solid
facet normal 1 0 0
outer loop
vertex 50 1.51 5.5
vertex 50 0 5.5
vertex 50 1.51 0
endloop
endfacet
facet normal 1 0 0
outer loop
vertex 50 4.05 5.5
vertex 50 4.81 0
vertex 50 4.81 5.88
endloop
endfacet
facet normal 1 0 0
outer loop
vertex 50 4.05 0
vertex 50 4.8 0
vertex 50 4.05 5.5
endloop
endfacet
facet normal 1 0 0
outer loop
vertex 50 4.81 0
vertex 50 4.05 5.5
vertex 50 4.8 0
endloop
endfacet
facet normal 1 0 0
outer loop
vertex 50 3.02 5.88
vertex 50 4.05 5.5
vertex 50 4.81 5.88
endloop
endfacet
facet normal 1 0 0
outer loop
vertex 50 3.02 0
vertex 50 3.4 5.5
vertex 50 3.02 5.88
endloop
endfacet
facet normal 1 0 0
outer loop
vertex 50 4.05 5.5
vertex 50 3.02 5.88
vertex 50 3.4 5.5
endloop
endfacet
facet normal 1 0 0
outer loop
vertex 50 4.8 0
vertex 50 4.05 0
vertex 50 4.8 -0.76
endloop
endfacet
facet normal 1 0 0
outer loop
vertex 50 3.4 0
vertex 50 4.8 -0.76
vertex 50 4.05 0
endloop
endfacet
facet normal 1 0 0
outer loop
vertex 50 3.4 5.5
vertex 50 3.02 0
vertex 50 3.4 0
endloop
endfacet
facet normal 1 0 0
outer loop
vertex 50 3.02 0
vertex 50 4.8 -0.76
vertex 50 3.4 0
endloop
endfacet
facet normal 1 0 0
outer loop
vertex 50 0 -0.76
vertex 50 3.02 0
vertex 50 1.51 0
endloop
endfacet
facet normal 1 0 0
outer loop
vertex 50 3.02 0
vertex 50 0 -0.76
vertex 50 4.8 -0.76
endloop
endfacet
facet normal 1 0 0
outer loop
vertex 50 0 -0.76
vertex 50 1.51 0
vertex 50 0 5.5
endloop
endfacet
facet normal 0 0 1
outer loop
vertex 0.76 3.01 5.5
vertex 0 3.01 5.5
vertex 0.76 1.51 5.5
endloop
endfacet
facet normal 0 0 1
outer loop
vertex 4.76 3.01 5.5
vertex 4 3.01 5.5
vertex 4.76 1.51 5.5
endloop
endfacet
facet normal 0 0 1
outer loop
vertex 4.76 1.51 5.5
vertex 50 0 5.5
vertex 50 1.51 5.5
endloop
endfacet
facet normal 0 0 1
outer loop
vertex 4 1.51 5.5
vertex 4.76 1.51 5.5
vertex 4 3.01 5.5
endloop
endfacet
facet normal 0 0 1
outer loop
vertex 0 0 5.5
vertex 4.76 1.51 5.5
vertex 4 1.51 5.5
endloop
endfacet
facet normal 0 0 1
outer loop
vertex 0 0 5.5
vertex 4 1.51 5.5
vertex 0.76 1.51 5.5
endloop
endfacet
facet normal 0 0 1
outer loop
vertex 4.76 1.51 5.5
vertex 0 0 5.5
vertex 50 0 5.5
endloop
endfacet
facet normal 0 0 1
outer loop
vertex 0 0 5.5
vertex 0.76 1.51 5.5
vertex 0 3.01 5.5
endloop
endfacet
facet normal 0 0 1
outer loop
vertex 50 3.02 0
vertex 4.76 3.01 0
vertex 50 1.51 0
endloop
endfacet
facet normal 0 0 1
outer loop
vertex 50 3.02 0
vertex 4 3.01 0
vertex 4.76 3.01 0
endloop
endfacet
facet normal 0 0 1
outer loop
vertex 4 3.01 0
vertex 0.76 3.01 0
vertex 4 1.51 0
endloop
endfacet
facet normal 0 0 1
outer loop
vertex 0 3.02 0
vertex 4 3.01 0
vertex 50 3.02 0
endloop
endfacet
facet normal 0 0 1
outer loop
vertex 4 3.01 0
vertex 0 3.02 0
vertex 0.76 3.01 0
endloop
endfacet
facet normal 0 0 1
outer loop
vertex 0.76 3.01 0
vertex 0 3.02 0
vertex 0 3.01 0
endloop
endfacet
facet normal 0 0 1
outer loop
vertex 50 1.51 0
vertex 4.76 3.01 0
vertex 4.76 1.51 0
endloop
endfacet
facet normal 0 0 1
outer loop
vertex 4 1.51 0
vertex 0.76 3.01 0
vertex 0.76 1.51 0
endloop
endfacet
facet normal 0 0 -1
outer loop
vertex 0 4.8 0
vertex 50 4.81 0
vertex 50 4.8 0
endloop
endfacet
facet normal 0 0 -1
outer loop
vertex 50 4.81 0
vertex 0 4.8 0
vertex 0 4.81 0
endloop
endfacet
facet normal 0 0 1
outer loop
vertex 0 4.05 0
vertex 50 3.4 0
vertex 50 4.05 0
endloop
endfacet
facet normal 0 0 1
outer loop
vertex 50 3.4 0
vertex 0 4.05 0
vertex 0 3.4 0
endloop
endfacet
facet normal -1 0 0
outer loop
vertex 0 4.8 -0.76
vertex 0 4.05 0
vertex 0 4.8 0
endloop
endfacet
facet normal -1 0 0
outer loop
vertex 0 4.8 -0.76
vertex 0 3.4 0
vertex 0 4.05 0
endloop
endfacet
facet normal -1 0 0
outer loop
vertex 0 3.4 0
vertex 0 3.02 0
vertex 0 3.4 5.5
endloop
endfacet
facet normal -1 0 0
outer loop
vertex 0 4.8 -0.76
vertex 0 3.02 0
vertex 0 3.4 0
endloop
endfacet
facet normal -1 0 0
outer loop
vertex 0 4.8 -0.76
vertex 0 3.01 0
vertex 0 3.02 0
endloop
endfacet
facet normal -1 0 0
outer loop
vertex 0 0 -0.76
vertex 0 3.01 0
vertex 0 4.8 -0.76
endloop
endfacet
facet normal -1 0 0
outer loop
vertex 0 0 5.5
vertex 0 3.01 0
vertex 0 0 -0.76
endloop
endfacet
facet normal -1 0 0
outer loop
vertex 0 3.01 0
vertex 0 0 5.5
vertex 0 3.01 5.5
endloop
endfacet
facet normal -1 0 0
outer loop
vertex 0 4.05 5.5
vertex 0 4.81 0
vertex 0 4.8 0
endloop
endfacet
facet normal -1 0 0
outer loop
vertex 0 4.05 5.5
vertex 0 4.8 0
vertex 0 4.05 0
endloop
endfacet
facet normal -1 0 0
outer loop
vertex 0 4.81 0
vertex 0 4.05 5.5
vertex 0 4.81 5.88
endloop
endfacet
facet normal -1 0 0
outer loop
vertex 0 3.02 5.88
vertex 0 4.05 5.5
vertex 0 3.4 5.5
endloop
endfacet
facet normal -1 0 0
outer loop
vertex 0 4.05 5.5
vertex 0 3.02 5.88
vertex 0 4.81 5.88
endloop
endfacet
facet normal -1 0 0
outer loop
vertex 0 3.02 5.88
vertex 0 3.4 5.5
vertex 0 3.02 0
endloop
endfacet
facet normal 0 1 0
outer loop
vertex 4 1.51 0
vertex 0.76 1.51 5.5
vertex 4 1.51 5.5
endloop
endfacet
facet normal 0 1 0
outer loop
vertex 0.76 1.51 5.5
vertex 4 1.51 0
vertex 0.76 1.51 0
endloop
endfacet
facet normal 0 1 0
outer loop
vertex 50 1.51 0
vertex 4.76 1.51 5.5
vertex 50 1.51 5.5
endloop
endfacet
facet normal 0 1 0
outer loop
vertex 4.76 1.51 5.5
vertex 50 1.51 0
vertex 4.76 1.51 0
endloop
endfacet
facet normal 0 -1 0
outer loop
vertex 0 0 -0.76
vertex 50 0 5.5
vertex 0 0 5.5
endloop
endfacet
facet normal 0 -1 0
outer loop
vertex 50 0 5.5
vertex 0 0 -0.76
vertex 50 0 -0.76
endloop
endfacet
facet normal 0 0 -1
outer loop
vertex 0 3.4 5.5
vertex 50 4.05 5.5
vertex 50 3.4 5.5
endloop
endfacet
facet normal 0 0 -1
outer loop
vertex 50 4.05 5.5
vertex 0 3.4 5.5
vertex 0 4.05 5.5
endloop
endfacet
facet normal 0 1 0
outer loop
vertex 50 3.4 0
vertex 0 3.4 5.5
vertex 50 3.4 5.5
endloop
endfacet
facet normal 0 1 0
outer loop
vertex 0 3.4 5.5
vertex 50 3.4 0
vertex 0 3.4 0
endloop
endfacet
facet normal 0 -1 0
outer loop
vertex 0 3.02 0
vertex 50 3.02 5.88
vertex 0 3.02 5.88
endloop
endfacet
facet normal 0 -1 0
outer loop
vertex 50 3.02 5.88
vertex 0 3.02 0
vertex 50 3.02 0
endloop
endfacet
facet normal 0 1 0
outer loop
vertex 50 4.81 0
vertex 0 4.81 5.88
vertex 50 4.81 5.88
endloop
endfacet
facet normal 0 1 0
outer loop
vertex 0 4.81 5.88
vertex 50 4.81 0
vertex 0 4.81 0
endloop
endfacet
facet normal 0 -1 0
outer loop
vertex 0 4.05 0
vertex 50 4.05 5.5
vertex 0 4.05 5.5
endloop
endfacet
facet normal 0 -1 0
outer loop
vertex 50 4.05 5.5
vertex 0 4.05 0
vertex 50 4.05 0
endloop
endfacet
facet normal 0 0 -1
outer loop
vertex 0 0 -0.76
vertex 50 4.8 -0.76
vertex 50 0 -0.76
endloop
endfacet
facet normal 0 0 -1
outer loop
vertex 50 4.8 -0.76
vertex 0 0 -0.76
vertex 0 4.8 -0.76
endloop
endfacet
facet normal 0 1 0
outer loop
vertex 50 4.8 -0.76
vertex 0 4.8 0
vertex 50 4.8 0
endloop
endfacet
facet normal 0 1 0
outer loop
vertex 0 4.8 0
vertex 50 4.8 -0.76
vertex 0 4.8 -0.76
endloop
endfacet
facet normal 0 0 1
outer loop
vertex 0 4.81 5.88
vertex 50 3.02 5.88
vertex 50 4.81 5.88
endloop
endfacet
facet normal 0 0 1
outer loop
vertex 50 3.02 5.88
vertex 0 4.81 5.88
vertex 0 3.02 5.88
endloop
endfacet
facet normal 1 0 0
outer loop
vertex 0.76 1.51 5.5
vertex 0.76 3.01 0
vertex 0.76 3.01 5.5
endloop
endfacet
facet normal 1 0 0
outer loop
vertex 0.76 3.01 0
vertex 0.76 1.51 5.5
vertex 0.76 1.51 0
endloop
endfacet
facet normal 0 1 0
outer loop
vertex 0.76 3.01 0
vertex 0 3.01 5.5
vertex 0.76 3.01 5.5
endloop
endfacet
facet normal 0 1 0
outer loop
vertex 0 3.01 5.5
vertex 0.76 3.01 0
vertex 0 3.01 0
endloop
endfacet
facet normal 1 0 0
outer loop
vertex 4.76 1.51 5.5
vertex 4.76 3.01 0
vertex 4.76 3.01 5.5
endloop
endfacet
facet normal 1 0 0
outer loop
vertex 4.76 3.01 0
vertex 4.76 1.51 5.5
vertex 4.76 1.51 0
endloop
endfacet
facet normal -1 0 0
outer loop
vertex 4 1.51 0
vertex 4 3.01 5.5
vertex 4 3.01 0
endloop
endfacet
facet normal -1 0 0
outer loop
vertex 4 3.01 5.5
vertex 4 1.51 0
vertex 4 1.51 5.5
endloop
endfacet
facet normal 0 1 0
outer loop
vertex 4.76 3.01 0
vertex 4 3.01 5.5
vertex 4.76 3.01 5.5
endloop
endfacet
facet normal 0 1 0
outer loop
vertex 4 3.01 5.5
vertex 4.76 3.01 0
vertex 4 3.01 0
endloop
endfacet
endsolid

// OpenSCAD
// This file is created by Robert Cross <@Quantum-cross> as a modification of
// LucidVR/lucidgloves which is released under the MIT License.
// See file LICENSE for details.

hallthick = 1.60 - .1;
hallheight = 5.50;
hallwidth = 4.0;

wallthick = .76;
wallthick2 = 1.51;

magnetthick = 0.65;

length = 50;

cube([length, wallthick2, hallheight]);


translate([0,wallthick*2+hallthick])
cube([length, wallthick/2, hallheight]);

translate([0,wallthick*1.5+hallthick + wallthick + magnetthick])
cube([length, wallthick, hallheight]);

//translate([0,wallthick*1+hallthick + wallthick + magnetthick+wallthick + hallthick])
//cube([length, wallthick2, hallheight]);

translate([0,0,-wallthick])
cube([length, wallthick*1.5 + wallthick2*1 + hallthick+magnetthick, wallthick]);

translate([0,wallthick*2+hallthick,hallheight])
cube([length, wallthick*1.5+magnetthick, wallthick/2]);

translate([0,wallthick2])
cube([wallthick, hallthick, hallheight]);


translate([hallwidth,wallthick2])
cube([wallthick, hallthick, hallheight]);
